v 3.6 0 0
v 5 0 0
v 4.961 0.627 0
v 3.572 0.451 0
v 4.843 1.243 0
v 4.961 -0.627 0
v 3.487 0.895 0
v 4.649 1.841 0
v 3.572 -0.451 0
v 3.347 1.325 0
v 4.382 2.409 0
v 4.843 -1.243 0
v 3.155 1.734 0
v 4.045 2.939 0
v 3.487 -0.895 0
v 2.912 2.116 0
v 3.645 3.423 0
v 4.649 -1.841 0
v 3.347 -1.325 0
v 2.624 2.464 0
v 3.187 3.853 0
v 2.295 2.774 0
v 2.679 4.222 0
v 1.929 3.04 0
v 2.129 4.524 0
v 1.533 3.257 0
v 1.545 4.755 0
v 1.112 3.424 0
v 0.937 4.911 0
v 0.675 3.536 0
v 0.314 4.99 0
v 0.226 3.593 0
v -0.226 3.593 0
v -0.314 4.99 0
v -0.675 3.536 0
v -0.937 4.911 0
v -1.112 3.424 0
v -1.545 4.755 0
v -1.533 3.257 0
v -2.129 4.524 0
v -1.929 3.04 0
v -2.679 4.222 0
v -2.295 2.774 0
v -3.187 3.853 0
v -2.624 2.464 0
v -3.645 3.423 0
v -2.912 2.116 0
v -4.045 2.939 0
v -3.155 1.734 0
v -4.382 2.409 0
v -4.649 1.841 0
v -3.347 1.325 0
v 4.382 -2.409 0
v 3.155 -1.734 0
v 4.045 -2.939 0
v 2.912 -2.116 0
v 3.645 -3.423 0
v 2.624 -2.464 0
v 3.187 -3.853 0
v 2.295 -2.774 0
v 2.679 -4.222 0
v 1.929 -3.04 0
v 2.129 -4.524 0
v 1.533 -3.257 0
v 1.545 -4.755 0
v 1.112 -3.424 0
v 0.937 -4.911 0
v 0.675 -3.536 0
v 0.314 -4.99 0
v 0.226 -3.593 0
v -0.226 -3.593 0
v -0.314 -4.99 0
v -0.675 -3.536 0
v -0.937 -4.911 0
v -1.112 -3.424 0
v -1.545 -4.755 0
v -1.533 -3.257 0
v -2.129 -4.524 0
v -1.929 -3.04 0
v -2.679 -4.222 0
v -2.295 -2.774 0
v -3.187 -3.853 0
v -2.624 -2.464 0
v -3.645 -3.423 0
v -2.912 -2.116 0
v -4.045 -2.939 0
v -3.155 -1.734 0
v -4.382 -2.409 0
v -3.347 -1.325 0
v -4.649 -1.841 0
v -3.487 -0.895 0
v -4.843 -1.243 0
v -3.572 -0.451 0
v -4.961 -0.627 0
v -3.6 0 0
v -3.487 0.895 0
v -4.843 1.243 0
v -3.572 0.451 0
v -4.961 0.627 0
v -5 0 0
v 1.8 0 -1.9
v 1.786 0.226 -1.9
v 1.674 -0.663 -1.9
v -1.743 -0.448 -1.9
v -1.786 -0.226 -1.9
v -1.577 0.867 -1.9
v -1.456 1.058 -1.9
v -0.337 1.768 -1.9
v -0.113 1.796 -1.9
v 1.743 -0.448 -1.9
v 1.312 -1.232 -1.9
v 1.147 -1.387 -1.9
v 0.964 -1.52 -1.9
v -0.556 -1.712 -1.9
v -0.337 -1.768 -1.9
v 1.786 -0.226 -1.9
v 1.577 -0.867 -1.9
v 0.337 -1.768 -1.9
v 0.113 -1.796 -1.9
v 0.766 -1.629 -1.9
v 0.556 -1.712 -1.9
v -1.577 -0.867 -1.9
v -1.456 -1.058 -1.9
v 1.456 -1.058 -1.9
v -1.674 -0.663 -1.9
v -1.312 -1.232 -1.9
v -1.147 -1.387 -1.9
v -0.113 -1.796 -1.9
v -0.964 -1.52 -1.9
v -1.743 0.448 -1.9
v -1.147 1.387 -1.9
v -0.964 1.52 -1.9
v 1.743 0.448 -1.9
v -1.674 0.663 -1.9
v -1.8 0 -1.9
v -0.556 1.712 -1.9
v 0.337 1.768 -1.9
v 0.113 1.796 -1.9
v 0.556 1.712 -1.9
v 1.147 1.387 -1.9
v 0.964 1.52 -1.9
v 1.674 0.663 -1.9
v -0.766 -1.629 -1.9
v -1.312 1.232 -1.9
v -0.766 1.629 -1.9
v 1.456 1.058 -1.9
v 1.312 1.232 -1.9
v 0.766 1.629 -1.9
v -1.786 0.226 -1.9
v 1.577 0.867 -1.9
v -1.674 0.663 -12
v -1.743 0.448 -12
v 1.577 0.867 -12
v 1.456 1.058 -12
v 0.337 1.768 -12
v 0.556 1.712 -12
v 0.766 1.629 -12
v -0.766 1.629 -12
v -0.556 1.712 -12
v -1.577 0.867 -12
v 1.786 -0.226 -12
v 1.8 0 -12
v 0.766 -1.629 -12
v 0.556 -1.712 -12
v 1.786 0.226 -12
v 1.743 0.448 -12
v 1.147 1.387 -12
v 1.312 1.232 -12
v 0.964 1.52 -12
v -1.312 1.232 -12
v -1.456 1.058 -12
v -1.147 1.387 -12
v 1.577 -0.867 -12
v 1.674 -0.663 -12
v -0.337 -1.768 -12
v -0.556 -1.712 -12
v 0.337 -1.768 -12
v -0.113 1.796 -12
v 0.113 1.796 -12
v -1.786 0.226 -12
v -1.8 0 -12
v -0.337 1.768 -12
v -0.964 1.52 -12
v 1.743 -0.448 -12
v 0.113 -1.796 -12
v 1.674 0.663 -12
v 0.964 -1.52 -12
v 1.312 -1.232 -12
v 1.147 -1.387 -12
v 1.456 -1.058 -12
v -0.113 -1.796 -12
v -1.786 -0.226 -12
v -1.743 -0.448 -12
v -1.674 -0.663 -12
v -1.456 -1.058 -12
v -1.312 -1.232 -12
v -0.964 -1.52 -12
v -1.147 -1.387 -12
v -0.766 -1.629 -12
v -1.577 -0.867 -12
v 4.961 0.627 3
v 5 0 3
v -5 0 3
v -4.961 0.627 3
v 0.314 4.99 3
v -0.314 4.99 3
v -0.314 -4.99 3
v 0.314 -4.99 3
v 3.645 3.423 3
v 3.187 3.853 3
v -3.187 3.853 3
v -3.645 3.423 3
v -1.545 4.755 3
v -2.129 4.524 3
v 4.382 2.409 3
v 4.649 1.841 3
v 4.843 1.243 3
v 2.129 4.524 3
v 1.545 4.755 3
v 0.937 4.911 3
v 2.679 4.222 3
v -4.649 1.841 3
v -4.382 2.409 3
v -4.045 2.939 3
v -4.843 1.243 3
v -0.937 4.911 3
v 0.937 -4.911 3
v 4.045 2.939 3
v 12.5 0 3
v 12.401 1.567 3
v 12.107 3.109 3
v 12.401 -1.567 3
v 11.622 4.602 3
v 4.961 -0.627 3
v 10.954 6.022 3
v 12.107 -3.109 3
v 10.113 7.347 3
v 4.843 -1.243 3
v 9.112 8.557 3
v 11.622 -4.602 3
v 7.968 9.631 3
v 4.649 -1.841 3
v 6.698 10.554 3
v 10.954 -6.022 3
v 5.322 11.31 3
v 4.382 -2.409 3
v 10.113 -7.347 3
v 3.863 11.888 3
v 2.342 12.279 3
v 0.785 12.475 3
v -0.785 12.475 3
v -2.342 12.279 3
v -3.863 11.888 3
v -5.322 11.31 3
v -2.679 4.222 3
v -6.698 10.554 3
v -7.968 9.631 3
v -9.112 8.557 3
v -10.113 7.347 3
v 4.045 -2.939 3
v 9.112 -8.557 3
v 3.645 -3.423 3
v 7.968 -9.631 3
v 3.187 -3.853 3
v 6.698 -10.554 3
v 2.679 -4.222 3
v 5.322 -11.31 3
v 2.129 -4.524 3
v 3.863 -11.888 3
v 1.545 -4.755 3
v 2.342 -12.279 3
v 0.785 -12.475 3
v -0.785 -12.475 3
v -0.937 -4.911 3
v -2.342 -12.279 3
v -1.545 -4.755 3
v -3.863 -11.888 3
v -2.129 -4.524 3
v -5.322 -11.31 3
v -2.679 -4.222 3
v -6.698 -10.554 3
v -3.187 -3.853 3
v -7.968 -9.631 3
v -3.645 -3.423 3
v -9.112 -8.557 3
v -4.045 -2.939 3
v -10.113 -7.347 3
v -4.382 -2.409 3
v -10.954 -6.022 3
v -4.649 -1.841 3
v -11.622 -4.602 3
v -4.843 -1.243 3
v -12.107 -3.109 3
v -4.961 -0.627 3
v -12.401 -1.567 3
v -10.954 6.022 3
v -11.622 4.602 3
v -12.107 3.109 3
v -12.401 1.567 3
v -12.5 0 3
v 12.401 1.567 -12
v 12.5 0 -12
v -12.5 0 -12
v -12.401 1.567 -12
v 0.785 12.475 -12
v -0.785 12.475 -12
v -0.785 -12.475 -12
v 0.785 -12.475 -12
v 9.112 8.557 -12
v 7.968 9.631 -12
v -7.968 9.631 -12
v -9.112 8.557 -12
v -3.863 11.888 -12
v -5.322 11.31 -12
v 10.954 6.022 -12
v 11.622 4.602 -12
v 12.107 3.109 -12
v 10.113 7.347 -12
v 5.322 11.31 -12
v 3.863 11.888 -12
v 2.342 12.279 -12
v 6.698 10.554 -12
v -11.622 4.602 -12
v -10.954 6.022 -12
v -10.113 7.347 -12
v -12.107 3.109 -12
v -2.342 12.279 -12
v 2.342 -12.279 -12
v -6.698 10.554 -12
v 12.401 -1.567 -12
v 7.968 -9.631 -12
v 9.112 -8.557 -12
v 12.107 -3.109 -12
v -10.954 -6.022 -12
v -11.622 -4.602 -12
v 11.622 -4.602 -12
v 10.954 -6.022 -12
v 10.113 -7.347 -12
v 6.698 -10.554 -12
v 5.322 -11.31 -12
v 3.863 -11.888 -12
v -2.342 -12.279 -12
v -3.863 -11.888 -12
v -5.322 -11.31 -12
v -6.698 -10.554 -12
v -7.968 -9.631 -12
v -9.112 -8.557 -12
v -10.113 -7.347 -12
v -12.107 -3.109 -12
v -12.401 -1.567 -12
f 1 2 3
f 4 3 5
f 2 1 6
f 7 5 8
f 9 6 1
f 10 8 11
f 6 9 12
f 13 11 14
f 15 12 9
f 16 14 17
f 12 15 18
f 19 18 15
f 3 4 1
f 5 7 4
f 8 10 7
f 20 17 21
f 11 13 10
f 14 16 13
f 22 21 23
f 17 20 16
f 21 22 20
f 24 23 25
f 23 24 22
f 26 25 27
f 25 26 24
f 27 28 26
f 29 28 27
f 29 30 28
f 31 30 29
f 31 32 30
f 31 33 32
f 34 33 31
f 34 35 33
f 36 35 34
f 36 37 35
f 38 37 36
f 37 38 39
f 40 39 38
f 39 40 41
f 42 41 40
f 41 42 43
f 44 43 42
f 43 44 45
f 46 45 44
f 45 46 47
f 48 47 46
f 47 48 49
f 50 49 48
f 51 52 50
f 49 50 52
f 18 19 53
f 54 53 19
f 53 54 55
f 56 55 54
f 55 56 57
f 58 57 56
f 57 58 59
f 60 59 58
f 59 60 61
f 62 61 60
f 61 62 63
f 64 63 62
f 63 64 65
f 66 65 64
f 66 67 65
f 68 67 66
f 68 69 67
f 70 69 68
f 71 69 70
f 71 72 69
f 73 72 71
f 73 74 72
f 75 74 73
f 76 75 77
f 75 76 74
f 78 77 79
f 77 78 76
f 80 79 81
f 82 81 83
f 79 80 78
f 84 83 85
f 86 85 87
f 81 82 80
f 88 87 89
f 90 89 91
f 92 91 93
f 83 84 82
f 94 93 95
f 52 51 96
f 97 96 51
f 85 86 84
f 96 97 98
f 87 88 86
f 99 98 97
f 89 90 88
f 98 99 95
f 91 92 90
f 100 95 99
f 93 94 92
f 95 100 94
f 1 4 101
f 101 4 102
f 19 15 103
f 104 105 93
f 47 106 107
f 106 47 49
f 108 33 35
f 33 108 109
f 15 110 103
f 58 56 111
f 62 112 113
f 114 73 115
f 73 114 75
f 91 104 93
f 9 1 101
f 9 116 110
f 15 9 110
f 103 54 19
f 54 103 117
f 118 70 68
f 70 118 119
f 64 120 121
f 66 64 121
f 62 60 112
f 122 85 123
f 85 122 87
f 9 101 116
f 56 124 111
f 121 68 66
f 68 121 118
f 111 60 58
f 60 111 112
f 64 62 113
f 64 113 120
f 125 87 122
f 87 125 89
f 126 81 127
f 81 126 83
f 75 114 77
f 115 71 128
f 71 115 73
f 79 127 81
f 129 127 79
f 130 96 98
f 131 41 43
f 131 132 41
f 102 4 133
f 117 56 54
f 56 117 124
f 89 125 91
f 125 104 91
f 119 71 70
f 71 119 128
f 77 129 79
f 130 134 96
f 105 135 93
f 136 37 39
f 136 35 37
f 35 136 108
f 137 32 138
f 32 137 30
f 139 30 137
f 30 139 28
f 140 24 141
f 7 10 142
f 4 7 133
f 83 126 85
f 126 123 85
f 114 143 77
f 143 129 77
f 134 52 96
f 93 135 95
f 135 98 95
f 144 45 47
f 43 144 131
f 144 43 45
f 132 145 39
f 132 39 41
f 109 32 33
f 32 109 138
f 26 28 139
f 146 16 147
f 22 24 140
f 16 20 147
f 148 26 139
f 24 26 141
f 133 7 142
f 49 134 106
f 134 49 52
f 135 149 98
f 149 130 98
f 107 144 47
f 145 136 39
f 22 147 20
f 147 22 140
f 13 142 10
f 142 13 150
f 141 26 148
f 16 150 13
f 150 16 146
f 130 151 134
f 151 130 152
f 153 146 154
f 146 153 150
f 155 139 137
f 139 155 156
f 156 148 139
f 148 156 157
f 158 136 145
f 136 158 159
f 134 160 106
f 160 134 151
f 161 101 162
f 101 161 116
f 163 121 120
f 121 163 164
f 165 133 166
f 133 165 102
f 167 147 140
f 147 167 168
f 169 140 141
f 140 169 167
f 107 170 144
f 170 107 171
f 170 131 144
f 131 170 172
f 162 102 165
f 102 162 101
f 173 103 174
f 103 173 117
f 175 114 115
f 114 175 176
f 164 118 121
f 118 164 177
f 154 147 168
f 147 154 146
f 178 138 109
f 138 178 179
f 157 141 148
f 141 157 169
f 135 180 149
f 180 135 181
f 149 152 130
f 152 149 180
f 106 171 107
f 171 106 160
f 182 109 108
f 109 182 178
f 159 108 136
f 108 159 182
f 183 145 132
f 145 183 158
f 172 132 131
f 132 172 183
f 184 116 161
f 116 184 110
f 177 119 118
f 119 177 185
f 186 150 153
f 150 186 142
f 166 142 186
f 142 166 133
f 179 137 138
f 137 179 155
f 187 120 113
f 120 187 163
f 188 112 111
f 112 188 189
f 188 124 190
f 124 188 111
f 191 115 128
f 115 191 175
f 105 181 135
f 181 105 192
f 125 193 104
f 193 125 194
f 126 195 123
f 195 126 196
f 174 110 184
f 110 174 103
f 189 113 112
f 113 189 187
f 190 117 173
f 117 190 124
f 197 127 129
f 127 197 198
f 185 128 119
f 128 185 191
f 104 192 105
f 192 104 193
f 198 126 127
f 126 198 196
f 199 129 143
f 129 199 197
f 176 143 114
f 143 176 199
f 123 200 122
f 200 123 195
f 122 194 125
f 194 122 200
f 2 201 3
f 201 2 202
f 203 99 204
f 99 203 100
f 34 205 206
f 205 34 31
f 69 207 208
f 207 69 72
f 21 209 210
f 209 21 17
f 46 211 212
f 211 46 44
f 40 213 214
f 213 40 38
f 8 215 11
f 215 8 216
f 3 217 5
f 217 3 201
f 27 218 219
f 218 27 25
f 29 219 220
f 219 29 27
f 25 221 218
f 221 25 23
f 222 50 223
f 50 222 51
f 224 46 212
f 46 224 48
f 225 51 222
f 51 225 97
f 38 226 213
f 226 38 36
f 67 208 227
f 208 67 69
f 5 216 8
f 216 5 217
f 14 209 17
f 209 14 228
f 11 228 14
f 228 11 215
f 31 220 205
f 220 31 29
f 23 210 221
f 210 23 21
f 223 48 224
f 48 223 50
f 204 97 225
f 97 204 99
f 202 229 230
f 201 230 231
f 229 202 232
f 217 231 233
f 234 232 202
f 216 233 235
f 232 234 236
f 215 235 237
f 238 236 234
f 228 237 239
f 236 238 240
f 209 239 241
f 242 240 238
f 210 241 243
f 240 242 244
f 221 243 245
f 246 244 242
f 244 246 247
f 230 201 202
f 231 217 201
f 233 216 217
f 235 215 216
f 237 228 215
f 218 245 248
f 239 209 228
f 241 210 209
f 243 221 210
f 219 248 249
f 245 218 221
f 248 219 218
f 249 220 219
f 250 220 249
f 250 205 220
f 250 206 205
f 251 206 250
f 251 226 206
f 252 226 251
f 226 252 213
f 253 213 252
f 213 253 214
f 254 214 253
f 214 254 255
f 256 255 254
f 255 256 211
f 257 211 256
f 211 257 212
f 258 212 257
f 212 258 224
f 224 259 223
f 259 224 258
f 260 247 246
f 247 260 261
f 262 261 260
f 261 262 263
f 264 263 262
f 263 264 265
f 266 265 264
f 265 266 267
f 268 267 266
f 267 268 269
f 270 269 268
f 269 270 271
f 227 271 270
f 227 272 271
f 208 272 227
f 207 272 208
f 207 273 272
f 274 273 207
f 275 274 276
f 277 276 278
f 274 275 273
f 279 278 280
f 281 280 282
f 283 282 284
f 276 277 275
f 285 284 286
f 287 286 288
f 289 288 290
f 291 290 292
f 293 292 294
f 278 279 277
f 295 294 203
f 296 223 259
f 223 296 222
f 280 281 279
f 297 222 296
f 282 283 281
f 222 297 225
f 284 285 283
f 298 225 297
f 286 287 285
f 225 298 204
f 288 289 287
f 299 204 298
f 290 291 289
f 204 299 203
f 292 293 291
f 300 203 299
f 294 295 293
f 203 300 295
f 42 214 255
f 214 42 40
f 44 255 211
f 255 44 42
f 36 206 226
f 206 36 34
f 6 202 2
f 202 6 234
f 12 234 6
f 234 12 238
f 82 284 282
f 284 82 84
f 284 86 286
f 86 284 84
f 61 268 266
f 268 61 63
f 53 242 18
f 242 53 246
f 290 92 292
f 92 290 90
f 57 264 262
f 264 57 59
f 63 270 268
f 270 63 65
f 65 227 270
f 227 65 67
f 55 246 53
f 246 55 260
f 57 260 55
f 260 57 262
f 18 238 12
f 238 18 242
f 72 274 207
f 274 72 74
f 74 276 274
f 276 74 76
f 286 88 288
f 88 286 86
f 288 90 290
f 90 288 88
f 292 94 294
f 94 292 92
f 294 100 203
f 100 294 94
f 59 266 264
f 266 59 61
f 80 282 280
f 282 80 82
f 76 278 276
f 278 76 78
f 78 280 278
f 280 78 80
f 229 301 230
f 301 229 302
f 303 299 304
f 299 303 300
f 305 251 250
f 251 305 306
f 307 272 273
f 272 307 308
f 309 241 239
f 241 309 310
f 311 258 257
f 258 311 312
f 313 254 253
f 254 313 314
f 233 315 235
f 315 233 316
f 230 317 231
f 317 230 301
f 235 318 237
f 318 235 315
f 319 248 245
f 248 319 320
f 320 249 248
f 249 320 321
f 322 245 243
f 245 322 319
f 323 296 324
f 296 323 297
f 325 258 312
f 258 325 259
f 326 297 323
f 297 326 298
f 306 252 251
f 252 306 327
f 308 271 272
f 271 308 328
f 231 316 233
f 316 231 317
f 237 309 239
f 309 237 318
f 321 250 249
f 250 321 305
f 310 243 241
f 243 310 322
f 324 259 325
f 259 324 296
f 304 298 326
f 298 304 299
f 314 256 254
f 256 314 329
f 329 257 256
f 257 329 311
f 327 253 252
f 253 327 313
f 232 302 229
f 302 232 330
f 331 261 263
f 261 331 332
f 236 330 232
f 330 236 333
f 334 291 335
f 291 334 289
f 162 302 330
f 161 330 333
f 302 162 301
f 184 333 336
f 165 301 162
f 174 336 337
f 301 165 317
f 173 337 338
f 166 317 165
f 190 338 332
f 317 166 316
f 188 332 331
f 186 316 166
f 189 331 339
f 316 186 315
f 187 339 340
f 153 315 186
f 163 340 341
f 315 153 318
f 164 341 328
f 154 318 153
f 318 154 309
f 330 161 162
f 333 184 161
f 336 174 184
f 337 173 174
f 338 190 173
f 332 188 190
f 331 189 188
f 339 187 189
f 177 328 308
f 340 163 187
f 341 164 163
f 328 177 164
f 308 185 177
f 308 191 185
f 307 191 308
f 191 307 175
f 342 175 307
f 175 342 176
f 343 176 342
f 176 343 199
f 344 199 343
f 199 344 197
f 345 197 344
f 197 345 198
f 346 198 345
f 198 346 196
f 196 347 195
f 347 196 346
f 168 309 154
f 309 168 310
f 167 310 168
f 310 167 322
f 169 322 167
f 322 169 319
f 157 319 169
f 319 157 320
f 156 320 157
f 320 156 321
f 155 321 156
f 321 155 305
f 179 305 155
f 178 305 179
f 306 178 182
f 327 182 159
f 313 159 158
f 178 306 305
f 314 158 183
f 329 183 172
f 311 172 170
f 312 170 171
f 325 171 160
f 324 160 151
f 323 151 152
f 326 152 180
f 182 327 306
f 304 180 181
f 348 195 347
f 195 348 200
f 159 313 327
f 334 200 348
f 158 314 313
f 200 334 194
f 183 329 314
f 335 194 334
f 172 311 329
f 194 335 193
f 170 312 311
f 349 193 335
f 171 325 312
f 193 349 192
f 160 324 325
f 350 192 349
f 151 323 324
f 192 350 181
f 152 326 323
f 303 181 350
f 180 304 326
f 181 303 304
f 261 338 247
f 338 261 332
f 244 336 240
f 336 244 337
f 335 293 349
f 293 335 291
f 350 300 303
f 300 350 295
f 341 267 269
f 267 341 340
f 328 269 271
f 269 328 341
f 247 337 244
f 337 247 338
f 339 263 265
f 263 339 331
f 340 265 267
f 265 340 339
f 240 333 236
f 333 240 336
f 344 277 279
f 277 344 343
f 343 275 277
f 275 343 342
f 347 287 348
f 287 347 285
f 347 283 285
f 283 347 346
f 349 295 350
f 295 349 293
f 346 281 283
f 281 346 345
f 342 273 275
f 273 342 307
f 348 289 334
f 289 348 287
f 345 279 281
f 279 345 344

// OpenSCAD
$fn = 50;

difference() {
	union() {
		translate(v = [0, 0, -12.0]) {
			cylinder(h = 15, r = 12.5);
		}
	}
	union() {
		translate(v = [0, 0, 0]) {
			rotate(a = [0, 0, 0]) {
				difference() {
					union() {
						translate(v = [0, 0, -15.0]) {
							cylinder(h = 15, r = 1.5);
						}
						translate(v = [0, 0, -1.9]) {
							cylinder(h = 1.9, r1 = 1.8, r2 = 3.6);
						}
						translate(v = [0, 0, -15.0]) {
							cylinder(h = 15, r = 1.8);
						}
						translate(v = [0, 0, -15.0]) {
							cylinder(h = 15, r = 1.5);
						}
					}
					union();
				}
			}
		}
		#cylinder(h = 3, r = 5.0);
	}
}
